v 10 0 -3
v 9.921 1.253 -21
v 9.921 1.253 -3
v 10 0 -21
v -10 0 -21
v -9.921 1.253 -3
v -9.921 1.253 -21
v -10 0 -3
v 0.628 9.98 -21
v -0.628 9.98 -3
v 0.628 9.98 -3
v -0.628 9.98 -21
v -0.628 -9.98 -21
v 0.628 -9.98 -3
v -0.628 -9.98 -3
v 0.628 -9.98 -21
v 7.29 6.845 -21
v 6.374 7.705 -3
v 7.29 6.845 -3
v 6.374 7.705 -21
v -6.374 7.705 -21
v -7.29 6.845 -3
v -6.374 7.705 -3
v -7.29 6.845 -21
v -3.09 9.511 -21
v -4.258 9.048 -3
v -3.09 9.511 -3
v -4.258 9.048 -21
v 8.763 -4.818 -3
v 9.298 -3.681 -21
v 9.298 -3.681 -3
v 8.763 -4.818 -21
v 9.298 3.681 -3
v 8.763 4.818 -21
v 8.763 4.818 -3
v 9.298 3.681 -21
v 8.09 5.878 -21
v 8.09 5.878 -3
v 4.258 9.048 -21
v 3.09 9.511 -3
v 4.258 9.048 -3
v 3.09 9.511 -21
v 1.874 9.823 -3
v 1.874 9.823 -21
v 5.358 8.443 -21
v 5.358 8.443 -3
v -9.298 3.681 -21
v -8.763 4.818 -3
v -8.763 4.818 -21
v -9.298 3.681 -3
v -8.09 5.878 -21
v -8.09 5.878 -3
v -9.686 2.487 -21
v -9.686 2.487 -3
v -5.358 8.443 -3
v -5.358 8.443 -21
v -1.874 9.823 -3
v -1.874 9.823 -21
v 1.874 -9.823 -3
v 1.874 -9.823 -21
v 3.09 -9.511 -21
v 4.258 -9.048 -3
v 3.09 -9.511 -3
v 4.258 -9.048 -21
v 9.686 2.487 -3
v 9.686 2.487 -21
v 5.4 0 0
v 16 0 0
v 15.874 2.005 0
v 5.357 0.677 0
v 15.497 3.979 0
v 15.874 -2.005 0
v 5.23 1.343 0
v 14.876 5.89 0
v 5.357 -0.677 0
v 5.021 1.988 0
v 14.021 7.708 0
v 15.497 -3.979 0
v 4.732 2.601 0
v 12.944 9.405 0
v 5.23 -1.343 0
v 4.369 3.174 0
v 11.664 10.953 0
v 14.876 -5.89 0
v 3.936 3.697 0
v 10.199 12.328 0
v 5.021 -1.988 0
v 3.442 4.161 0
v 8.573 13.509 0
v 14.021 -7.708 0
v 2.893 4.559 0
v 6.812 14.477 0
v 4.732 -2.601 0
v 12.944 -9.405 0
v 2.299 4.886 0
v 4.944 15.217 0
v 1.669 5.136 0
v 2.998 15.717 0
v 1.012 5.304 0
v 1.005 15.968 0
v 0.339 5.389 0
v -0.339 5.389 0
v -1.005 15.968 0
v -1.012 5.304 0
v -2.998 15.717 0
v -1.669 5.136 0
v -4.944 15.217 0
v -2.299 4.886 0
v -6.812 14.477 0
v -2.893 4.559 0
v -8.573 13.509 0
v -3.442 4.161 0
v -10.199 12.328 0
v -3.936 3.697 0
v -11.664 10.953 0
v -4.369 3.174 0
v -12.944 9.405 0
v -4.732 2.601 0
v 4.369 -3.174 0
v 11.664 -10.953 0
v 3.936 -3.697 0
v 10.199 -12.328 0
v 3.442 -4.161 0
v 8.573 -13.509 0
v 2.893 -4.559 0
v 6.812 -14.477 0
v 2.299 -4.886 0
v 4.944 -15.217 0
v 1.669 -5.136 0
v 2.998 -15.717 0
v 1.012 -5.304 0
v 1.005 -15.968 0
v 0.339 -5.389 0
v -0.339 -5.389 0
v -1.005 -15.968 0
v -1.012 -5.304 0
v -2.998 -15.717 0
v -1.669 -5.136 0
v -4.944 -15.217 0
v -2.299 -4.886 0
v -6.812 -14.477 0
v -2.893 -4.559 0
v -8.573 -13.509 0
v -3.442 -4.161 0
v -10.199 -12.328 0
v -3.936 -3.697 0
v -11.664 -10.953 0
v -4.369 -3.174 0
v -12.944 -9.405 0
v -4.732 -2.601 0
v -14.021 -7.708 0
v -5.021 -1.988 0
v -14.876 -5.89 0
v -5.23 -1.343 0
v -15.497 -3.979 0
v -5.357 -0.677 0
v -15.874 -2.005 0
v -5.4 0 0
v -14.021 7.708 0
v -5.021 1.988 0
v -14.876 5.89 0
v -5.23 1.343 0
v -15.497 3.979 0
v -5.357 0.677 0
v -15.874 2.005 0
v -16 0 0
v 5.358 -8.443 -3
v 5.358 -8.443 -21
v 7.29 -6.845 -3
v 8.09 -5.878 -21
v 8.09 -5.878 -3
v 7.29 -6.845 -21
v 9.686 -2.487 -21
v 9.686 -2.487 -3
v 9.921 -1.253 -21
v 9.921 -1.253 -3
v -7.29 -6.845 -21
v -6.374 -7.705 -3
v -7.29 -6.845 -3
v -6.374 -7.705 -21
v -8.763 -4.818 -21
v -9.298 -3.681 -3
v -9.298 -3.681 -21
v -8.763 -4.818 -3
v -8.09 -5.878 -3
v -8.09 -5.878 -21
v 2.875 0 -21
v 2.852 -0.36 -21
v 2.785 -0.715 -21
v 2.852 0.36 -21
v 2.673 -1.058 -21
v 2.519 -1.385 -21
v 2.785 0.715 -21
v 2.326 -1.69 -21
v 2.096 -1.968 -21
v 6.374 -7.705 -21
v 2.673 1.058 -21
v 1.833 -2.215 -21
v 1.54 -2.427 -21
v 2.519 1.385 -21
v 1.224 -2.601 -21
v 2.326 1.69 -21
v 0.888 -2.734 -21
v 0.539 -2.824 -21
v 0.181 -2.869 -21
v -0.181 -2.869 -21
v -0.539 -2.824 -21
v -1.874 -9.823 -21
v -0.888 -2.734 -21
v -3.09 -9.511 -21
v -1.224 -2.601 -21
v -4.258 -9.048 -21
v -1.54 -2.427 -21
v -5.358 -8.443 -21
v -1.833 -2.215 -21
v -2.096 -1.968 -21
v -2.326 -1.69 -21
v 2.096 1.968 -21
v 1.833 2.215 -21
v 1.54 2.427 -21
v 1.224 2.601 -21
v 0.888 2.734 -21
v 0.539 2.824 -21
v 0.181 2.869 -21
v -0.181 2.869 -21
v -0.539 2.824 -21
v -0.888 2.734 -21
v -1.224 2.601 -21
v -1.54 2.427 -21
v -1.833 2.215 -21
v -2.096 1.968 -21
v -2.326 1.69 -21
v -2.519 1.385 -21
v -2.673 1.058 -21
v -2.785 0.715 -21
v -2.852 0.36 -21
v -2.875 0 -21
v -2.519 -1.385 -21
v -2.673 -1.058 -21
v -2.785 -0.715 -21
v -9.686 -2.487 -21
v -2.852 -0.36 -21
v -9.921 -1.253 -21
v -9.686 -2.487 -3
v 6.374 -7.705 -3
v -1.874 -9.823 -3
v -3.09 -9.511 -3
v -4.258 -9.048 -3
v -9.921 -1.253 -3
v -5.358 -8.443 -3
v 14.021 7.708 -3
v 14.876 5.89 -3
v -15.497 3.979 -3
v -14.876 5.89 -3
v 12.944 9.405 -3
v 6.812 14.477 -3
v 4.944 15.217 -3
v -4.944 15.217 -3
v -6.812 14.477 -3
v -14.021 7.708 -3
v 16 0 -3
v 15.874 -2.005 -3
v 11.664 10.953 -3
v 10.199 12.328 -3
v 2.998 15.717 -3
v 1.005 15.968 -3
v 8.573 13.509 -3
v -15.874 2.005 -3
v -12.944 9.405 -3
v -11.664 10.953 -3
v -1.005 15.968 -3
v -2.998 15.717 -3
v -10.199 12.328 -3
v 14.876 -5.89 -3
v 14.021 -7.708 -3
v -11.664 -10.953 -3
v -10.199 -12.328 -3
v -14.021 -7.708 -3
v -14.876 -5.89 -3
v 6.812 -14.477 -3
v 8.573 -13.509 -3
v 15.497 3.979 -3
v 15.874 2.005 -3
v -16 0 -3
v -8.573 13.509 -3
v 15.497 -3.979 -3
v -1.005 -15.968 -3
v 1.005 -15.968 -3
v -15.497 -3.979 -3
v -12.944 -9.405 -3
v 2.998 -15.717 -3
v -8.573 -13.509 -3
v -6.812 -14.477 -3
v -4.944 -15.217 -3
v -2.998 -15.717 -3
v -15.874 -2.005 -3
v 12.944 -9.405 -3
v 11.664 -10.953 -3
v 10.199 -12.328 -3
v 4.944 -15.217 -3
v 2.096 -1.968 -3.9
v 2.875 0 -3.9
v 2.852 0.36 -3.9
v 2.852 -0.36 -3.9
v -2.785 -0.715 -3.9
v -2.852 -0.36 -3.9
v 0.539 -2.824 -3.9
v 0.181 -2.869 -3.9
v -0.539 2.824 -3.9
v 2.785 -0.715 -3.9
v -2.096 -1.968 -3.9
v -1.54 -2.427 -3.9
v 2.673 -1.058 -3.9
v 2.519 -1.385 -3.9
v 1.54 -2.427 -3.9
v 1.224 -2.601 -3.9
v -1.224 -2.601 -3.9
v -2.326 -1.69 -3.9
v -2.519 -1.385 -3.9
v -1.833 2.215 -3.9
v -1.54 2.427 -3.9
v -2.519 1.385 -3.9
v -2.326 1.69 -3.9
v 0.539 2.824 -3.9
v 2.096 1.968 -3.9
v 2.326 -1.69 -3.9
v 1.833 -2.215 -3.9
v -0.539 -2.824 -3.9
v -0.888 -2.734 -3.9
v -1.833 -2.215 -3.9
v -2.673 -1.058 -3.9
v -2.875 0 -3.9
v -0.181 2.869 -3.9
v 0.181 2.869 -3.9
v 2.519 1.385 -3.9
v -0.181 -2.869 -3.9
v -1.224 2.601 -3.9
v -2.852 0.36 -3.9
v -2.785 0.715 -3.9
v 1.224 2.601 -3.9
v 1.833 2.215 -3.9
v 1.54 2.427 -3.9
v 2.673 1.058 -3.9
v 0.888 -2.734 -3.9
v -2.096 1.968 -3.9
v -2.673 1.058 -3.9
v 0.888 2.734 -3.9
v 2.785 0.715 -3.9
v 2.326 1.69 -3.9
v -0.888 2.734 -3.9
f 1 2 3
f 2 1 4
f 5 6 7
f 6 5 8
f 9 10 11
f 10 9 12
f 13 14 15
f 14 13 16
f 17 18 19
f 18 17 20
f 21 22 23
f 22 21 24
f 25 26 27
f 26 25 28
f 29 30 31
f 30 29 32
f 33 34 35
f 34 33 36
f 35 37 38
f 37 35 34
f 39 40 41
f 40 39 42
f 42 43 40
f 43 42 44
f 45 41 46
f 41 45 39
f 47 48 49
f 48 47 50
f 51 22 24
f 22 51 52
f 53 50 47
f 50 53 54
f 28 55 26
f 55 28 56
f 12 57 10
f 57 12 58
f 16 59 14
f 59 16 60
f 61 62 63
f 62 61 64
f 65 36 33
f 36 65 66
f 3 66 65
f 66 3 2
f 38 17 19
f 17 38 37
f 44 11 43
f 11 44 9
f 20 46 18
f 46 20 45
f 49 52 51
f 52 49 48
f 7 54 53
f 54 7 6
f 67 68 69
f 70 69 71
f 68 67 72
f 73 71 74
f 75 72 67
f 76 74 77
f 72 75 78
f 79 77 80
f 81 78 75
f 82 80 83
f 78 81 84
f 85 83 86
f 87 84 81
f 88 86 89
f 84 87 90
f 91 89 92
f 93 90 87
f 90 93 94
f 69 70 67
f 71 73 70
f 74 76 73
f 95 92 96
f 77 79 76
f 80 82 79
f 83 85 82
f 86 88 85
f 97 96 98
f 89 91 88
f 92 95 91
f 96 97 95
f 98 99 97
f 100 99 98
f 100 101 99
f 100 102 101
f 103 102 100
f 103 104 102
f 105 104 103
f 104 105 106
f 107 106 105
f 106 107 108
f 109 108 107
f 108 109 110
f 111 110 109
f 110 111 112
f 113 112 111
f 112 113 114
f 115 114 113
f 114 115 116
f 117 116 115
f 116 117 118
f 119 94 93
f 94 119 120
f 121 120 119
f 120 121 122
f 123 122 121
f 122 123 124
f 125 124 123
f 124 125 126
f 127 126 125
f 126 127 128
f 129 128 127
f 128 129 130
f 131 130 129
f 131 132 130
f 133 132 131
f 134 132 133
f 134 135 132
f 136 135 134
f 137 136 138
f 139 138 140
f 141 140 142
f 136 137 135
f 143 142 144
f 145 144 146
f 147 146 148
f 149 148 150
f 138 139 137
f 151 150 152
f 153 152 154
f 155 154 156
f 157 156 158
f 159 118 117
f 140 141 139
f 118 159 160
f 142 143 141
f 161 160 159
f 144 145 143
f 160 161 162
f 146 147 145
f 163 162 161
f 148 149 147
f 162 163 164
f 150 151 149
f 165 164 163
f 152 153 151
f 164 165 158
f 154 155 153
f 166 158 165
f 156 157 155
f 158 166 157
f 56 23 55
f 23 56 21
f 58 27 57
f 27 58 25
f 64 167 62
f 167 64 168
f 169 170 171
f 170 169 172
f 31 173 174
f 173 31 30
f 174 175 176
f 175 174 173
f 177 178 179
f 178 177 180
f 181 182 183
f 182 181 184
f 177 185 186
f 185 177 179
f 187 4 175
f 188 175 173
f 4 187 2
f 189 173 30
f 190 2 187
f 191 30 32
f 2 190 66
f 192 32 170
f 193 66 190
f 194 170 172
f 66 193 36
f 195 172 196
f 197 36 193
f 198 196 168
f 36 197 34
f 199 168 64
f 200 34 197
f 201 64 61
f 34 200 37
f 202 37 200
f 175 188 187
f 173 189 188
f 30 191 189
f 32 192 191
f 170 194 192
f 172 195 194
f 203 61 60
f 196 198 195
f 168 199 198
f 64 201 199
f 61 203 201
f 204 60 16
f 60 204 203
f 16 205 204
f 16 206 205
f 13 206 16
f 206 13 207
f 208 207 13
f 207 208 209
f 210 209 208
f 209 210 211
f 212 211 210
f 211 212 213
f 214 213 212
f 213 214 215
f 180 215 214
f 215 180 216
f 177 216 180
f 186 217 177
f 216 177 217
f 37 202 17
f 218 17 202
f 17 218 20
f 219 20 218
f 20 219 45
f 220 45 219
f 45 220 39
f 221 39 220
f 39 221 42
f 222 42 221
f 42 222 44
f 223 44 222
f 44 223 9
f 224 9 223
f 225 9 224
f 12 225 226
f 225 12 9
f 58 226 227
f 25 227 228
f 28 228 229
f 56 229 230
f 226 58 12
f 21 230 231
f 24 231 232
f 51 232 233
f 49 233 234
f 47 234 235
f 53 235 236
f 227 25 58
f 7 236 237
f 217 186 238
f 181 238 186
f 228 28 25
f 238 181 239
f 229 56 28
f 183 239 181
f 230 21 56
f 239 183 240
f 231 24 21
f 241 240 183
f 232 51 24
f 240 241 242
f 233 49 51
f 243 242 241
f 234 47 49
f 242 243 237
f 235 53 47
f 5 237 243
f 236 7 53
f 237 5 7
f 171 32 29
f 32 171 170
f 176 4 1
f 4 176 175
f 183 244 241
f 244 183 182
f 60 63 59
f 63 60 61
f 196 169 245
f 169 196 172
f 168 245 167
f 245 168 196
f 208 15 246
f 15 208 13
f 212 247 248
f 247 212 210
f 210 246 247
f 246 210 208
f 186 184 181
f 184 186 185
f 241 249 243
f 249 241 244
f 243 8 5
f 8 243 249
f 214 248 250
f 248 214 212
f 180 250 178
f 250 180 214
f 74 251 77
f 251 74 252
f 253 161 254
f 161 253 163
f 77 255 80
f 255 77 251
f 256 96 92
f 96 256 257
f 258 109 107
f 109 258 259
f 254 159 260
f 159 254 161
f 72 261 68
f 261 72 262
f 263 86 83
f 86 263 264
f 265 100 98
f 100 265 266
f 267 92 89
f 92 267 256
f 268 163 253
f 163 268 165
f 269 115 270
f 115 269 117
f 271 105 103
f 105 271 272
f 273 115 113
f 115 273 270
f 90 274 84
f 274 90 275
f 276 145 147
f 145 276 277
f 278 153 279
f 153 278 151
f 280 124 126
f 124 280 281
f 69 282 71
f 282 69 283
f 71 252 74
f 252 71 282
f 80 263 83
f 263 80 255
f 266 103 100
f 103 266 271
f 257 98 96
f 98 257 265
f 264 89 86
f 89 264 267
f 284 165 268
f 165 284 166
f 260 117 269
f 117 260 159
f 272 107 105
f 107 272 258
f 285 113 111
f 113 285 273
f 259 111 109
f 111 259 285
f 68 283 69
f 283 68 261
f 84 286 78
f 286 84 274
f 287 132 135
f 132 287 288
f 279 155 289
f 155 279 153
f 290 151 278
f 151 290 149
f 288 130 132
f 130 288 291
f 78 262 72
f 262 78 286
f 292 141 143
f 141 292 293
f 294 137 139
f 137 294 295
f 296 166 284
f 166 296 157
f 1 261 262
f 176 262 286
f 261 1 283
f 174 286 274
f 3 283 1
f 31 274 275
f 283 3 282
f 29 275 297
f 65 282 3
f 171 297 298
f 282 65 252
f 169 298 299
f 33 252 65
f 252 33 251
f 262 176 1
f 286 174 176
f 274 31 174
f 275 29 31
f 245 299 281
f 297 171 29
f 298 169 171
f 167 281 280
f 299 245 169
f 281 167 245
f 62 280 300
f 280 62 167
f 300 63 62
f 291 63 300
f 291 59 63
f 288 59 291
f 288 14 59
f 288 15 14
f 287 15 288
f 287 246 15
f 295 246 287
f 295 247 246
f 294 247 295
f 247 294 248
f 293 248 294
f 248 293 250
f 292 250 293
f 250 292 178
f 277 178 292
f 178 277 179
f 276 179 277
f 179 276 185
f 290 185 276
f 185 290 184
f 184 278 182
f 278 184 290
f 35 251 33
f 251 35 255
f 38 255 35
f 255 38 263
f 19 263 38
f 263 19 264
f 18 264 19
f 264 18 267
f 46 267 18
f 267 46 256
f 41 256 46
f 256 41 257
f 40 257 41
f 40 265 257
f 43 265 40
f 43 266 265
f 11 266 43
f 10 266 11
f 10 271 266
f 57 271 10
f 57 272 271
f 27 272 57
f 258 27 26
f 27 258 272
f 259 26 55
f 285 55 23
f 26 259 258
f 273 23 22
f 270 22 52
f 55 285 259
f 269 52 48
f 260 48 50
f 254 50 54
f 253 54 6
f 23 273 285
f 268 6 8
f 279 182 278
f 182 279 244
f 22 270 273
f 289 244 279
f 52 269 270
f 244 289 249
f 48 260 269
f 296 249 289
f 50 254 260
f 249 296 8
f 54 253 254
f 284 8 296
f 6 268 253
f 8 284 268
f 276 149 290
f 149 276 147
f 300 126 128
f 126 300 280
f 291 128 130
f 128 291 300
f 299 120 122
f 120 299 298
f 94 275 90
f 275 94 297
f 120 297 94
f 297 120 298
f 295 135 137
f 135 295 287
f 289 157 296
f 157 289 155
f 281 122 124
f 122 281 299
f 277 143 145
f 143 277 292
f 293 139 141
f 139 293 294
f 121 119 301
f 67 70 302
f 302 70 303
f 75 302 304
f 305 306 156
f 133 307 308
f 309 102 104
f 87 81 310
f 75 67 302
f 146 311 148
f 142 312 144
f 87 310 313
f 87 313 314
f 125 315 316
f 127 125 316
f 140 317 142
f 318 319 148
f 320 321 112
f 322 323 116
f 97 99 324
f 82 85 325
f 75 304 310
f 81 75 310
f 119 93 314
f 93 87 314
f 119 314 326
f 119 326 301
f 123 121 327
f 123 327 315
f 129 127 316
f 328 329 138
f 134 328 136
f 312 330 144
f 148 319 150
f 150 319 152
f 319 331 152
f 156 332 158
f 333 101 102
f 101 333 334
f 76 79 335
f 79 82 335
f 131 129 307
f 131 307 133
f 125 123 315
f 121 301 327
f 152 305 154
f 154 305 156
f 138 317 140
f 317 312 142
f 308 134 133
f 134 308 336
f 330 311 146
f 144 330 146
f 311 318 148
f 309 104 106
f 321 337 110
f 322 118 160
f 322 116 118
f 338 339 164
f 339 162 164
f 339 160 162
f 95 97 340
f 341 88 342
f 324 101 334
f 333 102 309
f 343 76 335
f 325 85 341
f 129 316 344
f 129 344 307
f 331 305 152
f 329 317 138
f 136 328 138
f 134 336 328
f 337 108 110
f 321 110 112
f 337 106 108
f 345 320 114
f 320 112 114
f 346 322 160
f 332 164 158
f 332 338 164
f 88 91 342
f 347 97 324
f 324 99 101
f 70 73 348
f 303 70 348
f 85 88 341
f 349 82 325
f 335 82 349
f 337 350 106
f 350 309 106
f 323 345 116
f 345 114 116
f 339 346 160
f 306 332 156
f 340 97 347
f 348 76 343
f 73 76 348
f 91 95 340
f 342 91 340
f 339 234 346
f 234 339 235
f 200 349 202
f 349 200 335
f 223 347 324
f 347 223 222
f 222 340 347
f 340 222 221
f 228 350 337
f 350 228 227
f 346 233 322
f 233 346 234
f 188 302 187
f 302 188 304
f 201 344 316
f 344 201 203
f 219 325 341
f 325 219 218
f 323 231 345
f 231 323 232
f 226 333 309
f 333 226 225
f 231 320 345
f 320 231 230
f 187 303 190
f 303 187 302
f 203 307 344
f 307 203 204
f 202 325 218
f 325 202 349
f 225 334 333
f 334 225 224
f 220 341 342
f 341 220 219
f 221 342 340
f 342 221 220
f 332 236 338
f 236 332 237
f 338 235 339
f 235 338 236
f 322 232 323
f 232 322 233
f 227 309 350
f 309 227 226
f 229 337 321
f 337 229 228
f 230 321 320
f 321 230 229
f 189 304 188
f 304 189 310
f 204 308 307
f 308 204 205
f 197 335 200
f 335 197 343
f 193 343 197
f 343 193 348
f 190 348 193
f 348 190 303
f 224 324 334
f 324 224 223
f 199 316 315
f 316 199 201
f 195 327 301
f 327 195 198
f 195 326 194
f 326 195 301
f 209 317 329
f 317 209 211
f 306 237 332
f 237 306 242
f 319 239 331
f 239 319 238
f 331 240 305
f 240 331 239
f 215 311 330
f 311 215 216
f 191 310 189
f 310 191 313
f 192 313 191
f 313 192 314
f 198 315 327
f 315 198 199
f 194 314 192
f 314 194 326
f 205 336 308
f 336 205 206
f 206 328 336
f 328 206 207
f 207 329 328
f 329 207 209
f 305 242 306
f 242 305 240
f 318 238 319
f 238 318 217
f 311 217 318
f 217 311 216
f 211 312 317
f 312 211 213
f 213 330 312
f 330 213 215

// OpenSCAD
$fn = 50;


difference() {
	union() {
		translate(v = [0, 0, -21.0000000000]) {
			cylinder(h = 21, r = 10.0000000000);
		}
		translate(v = [0, 0, -3.0000000000]) {
			cylinder(h = 3, r = 16.0000000000);
		}
	}
	union() {
		translate(v = [0, 0, 0]) {
			rotate(a = [0, 0, 0]) {
				difference() {
					union() {
						#translate(v = [0, 0, -21.0000000000]) {
							cylinder(h = 21, r = 2.6000000000);
						}
						#translate(v = [0, 0, -3.9000000000]) {
							cylinder(h = 3.9000000000, r = 10.0000000000, r1 = 2.8750000000, r2 = 5.4000000000);
						}
						#translate(v = [0, 0, -21.0000000000]) {
							cylinder(h = 21, r = 2.8750000000);
						}
						#translate(v = [0, 0, -21.0000000000]) {
							cylinder(h = 21, r = 2.6000000000);
						}
					}
					union();
				}
			}
		}
	}
}
